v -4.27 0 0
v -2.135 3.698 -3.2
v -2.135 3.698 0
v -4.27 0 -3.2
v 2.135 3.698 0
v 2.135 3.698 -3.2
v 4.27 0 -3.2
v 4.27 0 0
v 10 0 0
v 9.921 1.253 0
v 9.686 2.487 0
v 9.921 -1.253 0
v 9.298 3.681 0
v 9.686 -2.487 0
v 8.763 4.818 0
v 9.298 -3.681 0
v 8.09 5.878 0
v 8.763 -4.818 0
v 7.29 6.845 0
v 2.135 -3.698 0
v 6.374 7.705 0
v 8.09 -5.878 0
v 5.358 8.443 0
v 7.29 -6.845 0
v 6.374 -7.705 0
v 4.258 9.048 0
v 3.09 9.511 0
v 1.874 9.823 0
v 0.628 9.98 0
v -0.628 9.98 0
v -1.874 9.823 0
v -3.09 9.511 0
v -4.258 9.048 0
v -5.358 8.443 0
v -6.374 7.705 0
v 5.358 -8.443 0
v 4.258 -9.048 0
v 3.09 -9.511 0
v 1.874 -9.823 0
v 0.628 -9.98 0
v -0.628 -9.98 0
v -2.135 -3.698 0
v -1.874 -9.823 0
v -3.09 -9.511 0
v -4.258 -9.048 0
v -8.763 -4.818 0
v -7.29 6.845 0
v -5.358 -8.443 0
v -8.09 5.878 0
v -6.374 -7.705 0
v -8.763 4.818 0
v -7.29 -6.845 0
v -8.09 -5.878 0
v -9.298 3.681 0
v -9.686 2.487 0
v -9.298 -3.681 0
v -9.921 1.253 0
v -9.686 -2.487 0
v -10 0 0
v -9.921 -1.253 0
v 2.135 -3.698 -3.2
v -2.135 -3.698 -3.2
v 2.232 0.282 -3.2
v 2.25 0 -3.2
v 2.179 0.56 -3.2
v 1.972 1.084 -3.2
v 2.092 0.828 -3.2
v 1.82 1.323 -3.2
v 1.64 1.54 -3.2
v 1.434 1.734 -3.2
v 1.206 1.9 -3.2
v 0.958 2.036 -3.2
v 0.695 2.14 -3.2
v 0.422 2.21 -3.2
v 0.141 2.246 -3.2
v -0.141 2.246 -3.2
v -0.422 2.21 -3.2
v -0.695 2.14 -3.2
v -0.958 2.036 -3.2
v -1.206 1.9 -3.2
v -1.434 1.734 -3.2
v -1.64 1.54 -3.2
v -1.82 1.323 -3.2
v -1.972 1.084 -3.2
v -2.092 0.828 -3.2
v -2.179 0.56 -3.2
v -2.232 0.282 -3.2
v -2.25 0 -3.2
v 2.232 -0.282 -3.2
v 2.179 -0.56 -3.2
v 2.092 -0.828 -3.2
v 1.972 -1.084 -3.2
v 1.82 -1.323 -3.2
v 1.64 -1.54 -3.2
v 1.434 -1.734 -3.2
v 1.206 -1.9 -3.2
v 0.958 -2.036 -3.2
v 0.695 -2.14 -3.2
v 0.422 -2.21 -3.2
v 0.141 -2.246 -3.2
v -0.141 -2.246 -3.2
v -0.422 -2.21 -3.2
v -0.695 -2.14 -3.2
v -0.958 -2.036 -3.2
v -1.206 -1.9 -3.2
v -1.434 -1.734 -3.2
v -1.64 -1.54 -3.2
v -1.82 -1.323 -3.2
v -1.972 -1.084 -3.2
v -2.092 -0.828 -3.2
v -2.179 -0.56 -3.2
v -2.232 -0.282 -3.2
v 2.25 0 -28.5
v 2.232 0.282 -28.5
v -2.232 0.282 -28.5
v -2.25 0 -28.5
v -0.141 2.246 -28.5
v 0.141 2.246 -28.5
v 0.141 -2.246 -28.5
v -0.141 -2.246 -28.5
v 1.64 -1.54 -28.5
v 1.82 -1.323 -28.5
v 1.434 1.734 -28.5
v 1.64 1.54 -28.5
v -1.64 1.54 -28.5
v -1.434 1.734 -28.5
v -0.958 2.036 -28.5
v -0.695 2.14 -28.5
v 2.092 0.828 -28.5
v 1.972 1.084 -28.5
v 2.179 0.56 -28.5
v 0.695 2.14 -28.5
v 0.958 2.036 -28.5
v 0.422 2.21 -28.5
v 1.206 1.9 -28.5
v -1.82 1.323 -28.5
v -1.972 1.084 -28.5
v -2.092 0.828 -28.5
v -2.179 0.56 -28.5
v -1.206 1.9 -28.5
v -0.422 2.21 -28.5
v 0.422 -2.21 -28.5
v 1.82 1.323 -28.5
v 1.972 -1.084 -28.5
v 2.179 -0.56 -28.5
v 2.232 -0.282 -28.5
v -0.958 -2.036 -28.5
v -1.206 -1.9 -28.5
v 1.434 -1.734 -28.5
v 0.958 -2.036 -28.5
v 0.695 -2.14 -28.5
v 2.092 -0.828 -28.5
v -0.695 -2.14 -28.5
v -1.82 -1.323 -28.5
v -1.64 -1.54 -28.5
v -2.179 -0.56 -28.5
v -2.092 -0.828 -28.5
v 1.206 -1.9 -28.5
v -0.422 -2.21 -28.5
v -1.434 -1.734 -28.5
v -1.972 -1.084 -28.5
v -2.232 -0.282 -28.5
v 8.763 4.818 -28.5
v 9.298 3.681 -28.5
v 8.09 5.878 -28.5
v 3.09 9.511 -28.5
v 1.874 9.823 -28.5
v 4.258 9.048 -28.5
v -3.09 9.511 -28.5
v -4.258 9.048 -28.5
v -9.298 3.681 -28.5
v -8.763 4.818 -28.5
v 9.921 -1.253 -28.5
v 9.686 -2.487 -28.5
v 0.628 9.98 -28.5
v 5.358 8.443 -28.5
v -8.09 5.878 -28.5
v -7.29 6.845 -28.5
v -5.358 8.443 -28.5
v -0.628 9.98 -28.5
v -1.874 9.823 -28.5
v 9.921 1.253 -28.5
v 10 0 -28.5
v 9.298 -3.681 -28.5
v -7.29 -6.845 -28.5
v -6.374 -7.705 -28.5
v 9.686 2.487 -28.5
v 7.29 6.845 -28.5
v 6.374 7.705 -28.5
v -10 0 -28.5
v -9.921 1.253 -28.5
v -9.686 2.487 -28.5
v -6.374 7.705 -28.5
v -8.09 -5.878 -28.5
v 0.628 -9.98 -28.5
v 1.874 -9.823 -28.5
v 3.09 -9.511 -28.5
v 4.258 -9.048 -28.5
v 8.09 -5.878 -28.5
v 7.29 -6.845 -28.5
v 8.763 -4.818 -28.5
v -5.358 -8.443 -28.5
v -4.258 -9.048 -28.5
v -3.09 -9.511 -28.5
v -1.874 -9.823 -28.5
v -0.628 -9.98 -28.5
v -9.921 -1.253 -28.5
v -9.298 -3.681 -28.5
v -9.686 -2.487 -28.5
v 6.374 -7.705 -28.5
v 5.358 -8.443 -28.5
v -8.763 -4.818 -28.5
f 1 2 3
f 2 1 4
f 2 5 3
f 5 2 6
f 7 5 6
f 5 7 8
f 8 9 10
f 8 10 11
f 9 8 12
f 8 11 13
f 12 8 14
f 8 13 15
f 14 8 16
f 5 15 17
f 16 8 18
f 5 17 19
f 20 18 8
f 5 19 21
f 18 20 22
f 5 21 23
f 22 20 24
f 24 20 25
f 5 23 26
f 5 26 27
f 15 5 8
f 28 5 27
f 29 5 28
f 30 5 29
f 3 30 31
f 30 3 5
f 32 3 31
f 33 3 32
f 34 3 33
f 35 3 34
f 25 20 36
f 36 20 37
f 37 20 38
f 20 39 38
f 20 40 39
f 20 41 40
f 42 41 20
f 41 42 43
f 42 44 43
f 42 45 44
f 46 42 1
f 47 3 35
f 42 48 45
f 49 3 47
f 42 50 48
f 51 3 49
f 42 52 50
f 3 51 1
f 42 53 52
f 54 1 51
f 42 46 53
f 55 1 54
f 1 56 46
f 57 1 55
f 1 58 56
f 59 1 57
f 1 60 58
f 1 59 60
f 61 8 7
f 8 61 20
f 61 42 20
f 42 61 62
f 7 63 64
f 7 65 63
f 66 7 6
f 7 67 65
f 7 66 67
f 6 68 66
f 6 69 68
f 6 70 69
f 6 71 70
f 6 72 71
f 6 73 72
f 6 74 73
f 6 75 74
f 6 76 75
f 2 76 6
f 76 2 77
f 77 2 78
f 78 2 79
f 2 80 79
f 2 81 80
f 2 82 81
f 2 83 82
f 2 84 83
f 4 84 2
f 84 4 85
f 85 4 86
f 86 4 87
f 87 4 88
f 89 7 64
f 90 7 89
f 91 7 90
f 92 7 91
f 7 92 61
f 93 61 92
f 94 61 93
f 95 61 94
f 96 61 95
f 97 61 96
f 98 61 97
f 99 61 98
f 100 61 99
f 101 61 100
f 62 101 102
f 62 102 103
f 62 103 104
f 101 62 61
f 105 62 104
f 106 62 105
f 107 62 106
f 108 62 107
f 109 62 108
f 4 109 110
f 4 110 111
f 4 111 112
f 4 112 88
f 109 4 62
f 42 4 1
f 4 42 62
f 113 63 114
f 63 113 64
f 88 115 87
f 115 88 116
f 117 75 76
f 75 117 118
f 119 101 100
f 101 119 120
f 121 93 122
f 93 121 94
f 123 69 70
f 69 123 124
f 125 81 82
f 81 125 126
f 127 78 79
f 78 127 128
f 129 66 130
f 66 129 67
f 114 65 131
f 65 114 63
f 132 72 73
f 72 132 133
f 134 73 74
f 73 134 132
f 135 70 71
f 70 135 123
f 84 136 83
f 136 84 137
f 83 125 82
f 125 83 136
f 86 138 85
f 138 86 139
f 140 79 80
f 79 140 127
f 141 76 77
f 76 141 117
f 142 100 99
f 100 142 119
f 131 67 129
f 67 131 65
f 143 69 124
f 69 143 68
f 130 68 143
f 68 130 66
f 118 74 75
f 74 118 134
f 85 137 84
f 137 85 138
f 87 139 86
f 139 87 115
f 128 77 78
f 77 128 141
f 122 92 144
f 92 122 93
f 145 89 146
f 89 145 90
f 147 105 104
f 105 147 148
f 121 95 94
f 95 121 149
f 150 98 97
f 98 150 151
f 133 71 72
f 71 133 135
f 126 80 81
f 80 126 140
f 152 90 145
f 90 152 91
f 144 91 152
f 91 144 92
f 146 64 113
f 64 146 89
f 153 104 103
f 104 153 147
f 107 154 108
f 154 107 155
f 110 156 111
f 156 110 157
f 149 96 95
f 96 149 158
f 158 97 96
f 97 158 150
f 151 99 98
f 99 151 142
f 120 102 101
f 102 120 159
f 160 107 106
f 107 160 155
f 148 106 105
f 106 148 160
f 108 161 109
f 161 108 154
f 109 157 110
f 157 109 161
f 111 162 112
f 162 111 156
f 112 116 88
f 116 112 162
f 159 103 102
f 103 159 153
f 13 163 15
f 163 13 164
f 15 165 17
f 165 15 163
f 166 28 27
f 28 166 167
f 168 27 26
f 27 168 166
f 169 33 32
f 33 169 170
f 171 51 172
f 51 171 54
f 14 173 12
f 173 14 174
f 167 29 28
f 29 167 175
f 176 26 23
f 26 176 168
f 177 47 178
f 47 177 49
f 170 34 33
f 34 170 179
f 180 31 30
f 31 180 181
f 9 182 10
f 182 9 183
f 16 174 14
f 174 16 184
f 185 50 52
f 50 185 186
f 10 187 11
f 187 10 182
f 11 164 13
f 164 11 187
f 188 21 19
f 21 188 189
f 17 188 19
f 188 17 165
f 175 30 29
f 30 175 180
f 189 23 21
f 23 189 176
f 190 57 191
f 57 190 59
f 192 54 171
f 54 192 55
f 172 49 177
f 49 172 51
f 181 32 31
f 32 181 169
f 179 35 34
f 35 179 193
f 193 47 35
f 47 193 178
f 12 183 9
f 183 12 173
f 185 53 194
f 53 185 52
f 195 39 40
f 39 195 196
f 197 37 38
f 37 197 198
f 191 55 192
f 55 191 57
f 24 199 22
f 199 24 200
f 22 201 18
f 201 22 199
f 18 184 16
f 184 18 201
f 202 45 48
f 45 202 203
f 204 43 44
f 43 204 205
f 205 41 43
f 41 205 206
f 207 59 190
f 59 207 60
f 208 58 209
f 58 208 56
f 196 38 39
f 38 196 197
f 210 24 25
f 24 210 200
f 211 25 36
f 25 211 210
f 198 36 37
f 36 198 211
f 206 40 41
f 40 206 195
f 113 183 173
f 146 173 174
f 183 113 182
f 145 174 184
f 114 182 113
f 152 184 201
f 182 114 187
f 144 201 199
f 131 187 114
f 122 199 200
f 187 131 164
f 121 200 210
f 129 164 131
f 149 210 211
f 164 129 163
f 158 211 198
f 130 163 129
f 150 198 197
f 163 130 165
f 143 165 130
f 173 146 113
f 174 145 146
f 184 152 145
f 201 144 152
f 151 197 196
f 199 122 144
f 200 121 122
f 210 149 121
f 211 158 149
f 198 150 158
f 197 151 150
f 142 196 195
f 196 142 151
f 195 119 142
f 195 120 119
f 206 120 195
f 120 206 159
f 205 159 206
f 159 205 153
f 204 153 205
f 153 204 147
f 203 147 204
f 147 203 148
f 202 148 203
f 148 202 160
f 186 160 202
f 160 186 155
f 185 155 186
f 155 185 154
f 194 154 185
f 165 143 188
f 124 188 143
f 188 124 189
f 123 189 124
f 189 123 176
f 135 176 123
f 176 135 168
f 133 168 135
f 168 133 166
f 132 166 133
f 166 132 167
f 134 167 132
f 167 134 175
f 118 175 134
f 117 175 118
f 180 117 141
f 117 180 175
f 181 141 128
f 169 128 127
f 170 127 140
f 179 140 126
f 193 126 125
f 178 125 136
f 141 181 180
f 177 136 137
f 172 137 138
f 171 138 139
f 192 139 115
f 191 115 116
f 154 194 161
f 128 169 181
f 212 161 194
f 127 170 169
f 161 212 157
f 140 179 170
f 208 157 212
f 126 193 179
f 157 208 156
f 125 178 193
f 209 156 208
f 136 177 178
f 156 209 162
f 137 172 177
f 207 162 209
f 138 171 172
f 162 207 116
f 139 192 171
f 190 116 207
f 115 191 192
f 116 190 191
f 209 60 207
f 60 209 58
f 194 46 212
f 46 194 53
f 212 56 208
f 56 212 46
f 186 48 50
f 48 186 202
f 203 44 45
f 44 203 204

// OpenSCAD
$fn = 50;


difference() {
	union() {
		translate(v = [0, 0, -28.5000000000]) {
			cylinder(h = 28.5000000000, r = 10.0000000000);
		}
	}
	union() {
		translate(v = [0, 0, 0]) {
			rotate(a = [0, 0, 0]) {
				difference() {
					union() {
						translate(v = [0, 0, -3.2000000000]) {
							linear_extrude(height = 3.2000000000) {
								polygon(points = [[4.2698000000, 0.0000000000], [2.1349000000, 3.6977552691], [-2.1349000000, 3.6977552691], [-4.2698000000, 0.0000000000], [-2.1349000000, -3.6977552691], [2.1349000000, -3.6977552691]]);
							}
						}
					}
					union();
				}
			}
		}
		#translate(v = [0, 0, -100.0000000000]) {
			cylinder(h = 200, r = 2.2500000000);
		}
	}
}
